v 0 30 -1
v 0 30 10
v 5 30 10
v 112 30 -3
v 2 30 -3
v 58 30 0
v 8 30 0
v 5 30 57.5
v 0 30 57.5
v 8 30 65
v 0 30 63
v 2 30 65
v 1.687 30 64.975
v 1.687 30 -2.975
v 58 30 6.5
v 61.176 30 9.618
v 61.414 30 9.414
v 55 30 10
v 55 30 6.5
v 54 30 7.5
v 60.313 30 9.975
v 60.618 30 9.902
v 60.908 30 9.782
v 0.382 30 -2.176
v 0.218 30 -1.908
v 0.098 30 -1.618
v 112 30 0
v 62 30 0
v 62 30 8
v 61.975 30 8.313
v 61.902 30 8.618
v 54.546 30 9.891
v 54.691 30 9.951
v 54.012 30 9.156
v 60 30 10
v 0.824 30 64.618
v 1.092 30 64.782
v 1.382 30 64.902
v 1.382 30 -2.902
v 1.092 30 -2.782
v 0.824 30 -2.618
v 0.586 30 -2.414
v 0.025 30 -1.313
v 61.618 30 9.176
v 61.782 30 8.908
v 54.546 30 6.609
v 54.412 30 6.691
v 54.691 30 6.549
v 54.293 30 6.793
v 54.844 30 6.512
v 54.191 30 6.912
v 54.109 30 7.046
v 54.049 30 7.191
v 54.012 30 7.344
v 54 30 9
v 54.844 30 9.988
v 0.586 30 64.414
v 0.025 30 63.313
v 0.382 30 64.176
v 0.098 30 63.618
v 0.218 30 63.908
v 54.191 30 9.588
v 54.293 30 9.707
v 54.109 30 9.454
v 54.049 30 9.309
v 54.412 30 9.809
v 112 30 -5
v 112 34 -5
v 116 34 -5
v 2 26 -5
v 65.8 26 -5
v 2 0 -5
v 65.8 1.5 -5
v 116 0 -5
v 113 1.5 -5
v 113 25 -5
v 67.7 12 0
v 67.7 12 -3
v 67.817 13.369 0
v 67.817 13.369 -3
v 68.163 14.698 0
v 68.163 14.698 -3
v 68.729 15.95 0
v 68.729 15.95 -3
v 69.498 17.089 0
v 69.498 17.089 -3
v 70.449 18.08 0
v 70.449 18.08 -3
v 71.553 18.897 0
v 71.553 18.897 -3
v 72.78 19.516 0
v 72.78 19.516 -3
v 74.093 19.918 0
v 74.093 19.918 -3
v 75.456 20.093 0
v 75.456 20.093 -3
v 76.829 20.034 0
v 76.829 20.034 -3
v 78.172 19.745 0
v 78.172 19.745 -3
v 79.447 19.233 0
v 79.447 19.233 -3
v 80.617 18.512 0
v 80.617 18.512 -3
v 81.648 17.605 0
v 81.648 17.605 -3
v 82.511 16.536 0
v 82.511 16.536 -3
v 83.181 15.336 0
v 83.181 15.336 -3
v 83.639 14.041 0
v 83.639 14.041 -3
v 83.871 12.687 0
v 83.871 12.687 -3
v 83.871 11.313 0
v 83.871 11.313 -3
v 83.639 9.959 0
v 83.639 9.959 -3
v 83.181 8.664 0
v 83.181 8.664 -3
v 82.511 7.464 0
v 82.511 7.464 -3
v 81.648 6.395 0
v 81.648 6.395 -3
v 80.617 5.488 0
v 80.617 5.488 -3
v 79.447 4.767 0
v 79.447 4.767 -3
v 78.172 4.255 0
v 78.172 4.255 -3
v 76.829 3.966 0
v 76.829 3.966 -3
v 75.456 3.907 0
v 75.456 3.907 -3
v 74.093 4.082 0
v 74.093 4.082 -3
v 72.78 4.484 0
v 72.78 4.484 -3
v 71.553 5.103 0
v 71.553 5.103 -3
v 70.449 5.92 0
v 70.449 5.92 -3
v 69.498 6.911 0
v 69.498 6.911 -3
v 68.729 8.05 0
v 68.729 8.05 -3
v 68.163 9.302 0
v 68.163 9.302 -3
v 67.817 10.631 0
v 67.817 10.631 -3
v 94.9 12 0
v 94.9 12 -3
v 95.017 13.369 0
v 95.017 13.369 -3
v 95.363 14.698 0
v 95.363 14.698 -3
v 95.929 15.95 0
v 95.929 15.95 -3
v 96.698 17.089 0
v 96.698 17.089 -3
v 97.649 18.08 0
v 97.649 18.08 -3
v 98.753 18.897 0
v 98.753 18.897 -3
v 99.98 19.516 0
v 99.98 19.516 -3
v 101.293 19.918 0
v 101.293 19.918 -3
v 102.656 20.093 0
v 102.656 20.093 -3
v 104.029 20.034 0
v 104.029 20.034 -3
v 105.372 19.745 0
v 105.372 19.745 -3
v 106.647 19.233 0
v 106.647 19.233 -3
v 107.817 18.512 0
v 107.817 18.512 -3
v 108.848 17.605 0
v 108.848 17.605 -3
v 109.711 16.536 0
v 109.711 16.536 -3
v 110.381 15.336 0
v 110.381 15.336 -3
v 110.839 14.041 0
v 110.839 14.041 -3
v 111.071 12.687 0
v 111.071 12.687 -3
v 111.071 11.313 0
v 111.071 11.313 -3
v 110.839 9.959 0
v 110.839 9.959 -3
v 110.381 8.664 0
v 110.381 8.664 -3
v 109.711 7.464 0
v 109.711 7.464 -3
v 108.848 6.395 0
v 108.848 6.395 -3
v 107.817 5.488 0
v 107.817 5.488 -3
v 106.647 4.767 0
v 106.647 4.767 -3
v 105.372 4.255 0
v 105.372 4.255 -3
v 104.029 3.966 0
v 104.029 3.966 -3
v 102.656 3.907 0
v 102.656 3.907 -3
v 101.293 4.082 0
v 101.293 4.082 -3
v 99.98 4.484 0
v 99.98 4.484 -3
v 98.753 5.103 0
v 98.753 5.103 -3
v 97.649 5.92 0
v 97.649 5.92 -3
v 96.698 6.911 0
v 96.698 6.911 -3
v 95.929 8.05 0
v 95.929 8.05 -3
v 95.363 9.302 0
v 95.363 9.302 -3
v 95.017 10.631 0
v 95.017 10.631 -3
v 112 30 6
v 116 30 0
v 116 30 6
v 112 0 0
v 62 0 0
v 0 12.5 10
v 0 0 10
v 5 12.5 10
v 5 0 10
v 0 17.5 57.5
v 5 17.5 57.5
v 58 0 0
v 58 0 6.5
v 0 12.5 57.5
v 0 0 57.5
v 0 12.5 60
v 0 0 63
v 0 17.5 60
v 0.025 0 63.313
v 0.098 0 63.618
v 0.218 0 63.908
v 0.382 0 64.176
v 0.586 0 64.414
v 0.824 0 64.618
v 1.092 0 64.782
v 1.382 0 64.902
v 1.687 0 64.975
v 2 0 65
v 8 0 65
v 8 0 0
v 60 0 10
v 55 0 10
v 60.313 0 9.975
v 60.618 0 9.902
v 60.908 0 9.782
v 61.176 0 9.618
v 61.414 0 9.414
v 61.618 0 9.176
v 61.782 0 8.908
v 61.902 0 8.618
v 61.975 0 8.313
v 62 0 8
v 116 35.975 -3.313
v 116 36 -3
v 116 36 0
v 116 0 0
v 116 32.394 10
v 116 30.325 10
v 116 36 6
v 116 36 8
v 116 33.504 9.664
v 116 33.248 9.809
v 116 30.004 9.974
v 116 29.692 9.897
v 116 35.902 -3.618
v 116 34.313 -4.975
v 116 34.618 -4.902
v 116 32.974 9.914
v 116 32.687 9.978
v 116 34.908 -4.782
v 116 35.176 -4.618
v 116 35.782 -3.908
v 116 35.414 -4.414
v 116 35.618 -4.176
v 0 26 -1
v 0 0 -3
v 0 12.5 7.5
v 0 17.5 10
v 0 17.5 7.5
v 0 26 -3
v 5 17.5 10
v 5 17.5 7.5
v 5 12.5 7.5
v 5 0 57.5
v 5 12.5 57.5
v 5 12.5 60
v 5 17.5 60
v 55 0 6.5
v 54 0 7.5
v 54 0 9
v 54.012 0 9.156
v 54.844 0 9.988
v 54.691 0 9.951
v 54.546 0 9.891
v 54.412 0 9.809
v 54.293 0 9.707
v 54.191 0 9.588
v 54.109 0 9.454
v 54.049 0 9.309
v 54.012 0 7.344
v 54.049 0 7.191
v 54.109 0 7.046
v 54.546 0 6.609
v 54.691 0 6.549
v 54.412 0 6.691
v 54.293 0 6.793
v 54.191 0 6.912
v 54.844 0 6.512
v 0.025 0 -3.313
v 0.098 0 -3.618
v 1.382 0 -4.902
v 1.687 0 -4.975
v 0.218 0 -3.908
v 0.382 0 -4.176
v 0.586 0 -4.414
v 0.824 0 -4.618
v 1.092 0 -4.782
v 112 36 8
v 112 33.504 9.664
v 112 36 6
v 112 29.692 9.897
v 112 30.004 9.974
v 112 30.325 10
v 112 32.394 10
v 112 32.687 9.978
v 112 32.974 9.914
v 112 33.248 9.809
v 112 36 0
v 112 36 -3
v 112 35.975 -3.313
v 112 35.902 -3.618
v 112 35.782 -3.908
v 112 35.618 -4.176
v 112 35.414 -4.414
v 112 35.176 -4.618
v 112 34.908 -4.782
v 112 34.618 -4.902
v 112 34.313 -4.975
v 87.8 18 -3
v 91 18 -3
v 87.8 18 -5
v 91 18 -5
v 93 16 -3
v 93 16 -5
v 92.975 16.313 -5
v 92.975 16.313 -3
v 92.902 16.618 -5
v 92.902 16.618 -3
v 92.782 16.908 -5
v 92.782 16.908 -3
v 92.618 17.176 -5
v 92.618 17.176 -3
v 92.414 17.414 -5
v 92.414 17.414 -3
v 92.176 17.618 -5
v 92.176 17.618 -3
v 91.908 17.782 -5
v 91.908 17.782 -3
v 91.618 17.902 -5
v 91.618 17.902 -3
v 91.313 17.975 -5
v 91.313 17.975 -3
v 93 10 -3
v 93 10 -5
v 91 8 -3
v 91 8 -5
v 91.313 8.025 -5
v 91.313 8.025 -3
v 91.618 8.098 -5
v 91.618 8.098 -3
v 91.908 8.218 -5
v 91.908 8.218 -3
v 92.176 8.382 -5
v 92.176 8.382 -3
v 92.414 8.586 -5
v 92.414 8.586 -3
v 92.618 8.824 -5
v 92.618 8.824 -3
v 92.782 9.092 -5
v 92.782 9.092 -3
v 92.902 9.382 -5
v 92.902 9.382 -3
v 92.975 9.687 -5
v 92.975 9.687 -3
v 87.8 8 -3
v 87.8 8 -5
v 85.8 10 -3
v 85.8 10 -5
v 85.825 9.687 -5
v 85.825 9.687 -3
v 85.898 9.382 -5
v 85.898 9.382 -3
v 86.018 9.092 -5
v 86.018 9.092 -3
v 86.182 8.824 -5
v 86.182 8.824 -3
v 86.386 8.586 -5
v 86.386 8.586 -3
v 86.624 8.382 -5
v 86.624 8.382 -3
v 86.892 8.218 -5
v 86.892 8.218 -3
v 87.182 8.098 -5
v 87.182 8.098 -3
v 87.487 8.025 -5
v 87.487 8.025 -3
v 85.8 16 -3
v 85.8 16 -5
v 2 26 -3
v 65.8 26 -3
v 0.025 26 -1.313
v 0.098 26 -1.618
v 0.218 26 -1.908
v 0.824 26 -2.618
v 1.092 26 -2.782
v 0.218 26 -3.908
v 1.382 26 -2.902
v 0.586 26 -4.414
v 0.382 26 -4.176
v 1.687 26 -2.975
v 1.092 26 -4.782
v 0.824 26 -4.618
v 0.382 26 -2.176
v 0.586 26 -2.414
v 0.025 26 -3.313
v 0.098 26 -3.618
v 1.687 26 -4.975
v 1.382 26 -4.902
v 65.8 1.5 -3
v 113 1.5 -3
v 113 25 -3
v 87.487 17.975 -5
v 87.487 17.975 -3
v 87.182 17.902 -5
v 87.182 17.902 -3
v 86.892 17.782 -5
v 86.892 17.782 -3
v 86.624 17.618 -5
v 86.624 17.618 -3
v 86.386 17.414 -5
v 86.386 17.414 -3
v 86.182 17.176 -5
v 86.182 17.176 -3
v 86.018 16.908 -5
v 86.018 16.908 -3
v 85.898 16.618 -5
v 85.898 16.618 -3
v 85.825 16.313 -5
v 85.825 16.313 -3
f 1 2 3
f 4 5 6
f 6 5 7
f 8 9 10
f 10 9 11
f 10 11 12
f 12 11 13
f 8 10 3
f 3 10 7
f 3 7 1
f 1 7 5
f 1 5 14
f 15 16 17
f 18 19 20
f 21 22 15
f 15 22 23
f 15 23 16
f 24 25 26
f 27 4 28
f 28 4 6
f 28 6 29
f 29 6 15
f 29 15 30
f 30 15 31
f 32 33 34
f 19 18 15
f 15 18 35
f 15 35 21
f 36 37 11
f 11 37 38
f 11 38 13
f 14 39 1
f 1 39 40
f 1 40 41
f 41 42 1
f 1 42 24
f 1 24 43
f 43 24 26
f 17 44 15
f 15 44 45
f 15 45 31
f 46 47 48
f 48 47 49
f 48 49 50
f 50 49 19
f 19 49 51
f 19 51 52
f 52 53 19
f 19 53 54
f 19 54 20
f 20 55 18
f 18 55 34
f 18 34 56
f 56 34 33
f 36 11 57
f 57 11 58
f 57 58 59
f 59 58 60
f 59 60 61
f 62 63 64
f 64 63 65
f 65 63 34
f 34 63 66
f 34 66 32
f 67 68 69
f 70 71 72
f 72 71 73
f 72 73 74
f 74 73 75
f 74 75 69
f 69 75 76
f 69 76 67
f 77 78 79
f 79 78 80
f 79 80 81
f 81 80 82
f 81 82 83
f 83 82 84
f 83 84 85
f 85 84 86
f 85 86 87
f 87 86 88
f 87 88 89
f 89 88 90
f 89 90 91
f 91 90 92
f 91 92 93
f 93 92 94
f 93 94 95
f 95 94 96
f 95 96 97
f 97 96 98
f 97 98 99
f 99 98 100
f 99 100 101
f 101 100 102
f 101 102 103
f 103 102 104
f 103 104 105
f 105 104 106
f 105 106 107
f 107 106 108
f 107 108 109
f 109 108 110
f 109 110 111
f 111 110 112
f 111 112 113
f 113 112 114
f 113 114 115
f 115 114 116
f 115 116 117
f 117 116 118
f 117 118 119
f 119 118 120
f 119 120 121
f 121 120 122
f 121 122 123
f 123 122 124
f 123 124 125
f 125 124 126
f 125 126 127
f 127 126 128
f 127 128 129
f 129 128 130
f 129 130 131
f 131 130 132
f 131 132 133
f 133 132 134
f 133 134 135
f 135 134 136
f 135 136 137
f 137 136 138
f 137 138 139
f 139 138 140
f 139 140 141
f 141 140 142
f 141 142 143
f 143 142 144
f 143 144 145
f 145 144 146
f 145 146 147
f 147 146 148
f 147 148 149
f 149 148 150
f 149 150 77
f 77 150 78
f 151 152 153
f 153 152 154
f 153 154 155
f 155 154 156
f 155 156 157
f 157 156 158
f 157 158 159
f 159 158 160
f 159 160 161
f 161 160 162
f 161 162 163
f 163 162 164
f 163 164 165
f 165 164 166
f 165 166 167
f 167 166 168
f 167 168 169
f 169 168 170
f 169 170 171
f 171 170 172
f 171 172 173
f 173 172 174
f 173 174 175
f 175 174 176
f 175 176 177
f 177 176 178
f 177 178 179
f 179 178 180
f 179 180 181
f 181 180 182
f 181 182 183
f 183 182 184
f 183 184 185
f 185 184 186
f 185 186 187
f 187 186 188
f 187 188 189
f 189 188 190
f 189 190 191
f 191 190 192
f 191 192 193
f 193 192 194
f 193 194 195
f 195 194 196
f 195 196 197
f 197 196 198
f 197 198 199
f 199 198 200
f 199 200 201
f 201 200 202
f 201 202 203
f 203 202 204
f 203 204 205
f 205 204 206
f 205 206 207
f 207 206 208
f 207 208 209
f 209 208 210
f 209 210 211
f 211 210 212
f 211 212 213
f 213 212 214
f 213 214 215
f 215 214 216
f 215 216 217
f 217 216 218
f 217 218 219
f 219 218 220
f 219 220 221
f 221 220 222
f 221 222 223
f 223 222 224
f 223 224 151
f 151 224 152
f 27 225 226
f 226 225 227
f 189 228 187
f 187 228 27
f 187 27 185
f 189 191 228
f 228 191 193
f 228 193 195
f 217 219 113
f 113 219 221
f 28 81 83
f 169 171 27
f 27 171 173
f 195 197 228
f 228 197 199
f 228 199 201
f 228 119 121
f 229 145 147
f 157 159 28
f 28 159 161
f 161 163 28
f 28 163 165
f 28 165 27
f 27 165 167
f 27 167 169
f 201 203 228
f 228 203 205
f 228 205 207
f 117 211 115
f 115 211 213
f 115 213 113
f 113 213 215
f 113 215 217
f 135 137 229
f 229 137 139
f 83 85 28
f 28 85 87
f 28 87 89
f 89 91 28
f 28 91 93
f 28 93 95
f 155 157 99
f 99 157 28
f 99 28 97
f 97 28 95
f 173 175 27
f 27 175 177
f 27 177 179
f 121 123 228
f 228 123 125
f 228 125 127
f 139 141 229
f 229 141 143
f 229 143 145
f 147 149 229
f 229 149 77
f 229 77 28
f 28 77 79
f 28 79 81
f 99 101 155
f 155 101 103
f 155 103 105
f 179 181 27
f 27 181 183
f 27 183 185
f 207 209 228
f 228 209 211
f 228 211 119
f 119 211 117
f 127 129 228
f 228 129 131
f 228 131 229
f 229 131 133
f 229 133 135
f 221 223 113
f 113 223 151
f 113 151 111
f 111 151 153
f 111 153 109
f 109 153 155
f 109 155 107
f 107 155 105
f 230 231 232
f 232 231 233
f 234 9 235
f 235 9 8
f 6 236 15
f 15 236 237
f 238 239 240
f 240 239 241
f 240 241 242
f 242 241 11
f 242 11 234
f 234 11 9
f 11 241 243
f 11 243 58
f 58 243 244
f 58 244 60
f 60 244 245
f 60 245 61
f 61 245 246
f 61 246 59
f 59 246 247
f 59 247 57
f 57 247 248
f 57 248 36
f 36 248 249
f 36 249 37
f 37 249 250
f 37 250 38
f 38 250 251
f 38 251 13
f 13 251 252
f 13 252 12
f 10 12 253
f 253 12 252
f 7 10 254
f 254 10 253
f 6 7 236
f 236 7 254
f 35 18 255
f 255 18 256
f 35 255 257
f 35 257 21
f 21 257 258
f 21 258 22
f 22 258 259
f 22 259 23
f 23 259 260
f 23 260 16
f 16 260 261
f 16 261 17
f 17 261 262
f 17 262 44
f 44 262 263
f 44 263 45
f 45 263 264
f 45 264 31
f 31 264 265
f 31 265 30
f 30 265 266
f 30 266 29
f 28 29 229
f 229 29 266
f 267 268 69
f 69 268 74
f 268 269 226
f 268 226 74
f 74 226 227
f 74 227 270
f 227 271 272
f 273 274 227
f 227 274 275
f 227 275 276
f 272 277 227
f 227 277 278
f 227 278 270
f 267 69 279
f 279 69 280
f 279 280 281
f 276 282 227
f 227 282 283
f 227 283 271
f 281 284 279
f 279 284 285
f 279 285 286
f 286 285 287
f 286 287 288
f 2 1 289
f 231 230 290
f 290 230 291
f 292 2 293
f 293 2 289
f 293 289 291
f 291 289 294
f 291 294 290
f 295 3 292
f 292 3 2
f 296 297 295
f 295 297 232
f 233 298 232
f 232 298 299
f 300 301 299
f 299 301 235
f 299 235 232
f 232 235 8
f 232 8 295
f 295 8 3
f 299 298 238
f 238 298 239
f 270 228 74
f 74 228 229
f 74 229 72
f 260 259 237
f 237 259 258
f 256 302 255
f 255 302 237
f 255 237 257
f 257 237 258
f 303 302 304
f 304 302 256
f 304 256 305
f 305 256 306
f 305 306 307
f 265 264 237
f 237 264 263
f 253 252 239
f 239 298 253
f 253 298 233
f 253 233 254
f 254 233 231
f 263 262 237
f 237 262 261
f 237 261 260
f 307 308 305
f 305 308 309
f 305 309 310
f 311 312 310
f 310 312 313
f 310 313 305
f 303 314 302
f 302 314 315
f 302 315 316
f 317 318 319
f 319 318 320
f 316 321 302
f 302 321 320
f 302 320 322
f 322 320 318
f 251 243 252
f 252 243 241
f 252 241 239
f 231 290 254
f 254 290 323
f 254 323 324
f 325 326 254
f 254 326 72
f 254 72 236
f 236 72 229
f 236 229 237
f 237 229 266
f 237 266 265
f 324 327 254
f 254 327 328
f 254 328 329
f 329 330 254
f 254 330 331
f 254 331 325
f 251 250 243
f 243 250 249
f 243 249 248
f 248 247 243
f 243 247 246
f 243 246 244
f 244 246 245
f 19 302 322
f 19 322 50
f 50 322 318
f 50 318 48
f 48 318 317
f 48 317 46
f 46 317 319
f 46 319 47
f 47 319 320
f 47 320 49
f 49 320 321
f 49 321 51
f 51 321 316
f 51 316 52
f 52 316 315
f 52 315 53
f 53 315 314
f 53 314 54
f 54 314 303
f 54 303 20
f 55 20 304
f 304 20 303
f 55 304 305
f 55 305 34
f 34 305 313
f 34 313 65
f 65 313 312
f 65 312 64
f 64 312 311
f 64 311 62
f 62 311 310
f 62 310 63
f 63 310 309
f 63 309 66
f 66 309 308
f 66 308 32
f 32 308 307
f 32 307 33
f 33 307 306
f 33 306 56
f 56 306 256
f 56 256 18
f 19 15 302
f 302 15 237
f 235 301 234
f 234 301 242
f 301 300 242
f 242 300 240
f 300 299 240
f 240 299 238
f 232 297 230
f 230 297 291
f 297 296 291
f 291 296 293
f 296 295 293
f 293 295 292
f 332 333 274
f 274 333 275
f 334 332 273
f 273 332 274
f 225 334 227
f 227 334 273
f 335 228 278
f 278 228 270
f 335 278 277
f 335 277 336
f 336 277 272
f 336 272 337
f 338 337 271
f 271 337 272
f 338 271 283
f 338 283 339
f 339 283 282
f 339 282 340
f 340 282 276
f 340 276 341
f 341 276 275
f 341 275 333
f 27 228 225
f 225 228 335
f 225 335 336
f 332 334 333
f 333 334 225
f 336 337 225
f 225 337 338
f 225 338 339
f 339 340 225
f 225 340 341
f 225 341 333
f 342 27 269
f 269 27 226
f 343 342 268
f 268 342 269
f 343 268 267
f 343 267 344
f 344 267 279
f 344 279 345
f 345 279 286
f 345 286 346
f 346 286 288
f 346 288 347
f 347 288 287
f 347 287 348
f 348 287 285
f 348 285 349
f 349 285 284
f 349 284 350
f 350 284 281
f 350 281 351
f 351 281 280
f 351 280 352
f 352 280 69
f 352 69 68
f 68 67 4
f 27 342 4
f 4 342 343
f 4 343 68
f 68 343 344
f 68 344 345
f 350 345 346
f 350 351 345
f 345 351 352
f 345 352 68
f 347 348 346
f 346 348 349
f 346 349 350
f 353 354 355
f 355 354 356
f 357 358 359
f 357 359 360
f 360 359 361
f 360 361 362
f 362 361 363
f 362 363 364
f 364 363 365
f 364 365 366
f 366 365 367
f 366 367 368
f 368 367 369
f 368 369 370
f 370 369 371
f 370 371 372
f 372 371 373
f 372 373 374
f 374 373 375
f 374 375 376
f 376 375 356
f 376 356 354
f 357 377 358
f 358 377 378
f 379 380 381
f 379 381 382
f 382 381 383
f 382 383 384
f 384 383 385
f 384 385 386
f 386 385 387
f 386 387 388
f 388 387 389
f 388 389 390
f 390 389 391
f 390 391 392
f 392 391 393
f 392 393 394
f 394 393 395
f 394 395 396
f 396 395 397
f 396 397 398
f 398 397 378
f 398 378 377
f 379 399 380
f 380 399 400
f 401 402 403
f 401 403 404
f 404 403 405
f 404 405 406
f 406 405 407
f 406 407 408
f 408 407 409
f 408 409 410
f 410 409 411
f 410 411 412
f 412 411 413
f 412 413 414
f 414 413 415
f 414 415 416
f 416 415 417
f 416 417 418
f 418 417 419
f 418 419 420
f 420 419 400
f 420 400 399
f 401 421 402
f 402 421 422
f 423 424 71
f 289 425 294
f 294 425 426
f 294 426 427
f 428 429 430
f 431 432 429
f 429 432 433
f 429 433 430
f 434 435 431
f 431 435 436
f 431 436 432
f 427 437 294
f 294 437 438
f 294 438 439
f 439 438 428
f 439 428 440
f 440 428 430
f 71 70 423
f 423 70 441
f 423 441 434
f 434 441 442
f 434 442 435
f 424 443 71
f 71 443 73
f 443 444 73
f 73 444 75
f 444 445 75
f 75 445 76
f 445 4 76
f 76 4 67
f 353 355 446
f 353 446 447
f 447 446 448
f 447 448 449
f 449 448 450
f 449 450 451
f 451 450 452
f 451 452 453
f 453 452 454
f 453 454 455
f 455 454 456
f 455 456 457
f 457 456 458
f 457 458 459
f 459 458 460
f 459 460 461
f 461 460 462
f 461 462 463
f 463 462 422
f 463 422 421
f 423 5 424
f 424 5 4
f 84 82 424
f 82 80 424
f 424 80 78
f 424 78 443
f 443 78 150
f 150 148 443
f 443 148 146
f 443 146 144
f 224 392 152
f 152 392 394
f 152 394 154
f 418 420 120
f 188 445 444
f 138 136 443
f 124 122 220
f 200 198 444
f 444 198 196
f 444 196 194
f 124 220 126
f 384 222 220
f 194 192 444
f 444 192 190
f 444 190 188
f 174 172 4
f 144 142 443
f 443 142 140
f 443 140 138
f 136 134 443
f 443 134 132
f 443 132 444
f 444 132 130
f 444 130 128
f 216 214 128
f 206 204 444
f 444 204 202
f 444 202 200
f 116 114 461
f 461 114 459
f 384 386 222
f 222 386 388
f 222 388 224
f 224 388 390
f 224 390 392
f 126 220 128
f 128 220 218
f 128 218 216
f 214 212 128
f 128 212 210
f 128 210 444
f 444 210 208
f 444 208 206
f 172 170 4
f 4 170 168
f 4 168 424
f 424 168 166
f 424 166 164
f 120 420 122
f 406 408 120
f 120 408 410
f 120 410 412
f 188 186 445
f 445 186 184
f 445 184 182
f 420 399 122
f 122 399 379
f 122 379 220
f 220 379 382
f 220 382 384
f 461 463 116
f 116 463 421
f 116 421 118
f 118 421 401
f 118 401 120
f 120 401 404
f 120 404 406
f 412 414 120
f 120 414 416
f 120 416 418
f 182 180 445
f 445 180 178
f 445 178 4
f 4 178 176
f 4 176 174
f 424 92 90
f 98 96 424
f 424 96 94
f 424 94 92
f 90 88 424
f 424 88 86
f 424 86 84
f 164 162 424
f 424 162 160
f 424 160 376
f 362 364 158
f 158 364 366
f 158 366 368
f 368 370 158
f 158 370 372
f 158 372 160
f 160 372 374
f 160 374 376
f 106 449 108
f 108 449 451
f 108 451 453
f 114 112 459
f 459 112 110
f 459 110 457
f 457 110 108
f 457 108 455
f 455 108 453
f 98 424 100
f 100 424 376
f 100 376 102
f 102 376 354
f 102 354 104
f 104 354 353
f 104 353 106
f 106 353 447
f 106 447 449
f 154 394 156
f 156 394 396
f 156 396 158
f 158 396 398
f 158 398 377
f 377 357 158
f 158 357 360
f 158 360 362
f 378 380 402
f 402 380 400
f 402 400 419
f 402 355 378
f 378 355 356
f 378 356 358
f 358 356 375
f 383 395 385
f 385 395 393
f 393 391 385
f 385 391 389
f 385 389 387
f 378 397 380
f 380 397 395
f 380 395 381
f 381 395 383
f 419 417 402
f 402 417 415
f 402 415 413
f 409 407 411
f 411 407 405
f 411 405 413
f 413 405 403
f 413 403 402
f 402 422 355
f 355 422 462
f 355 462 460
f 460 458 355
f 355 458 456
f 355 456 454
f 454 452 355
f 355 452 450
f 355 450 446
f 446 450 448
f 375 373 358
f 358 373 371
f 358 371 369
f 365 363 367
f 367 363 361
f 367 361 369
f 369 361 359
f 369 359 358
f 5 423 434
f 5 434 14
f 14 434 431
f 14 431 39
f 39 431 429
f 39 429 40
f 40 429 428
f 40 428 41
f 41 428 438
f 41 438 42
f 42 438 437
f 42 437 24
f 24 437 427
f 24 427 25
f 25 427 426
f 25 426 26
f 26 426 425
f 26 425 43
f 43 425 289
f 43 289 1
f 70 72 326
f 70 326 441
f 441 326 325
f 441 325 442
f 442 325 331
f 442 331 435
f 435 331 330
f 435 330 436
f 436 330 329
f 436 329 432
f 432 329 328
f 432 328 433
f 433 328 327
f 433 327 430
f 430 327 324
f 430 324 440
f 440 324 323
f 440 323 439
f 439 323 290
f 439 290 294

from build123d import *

# Parameters (mm, degrees)
BOSS_EXTRUDE1_DEPTH = 30
SKETCH2_W           = 2.5
SKETCH2_H           = 5
CUT_EXTRUDE1_DEPTH  = 5
SKETCH3_R           = 8.1
CUT_EXTRUDE2_DEPTH  = 71
BOSS_EXTRUDE5_DEPTH = 4
CUT_EXTRUDE3_DEPTH  = 2
FILLET1_R           = 2


with BuildPart() as part:
    # Sketch1 → Boss-Extrude1 (new body)
    with BuildSketch(Plane(origin=(0, 0, 0), x_dir=(1, 0, 0), z_dir=(0, 1, 0))):
        with BuildLine():
            Line((8, -65), (8, 0))
            Line((8, 0), (58, 0))
            Line((58, 0), (58, -6.5))
            Line((58, -6.5), (55, -6.5))
            ThreePointArc((55, -6.5), (54.292893219, -6.792893219), (54, -7.5))
            Line((54, -7.5), (54, -9))
            ThreePointArc((54, -9), (54.292893219, -9.707106781), (55, -10))
            Line((55, -10), (60, -10))
            ThreePointArc((60, -10), (61.414213562, -9.414213562), (62, -8))
            Line((62, -8), (62, 0))
            Line((62, 0), (116, 0))
            Line((116, 0), (116, 5))
            Line((116, 5), (0, 5))
            Line((0, 5), (0, -10))
            Line((0, -10), (5, -10))
            Line((5, -10), (5, -57.5))
            Line((5, -57.5), (0, -57.5))
            Line((0, -57.5), (0, -63))
            ThreePointArc((0, -63), (0.585786438, -64.414213562), (2, -65))
            Line((2, -65), (8, -65))
        make_face()
    extrude(amount=BOSS_EXTRUDE1_DEPTH)

    # Sketch2 → Cut-Extrude1 (cut)
    with BuildSketch(Plane.ZY):
        with Locations((8.75, 15)):
            Rectangle(SKETCH2_W, SKETCH2_H)
        with Locations((58.75, 15)):
            Rectangle(SKETCH2_W, SKETCH2_H)
    extrude(amount=-CUT_EXTRUDE1_DEPTH, mode=Mode.SUBTRACT)

    # Sketch3 → Cut-Extrude2 (cut, through all)
    with BuildSketch(Plane(origin=(0, 0, -5), x_dir=(-1, 0, 0), z_dir=(0, 0, -1))):
        with Locations((-103, 12)):
            Circle(SKETCH3_R)
        with Locations((-75.8, 12)):
            Circle(SKETCH3_R)
    extrude(amount=-CUT_EXTRUDE2_DEPTH, mode=Mode.SUBTRACT)

    # Sketch8 → Boss-Extrude5 (add)
    with BuildSketch(Plane(origin=(116, 0, 0), x_dir=(0, 0, -1), z_dir=(1, 0, 0))):
        with BuildLine():
            Line((-8, 36), (-9.664100589, 33.503849117))
            ThreePointArc((-9.664100589, 33.503849117), (-9.914184053, 32.974017022), (-10, 32.394448725))
            Line((-10, 32.394448725), (-10, 30.32455532))
            ThreePointArc((-10, 30.32455532), (-9.974174915, 30.004190834), (-9.897366596, 29.692099788))
            Line((-9.897366596, 29.692099788), (0, 0))
            Line((0, 0), (0, 30))
            Line((0, 30), (-6, 30))
            Line((-6, 30), (-6, 36))
            Line((-6, 36), (-8, 36))
        make_face()
        with BuildLine():
            Line((5, 30), (5, 34))
            ThreePointArc((5, 34), (4.414213562, 35.414213562), (3, 36))
            Line((3, 36), (0, 36))
            Line((0, 36), (0, 30))
            Line((0, 30), (5, 30))
        make_face()
    extrude(amount=-BOSS_EXTRUDE5_DEPTH)

    # Sketch10 → Cut-Extrude3 (cut)
    with BuildSketch(Plane(origin=(0, 0, -5), x_dir=(-1, 0, 0), z_dir=(0, 0, -1))):
        Polygon((-112, 30), (-113, 25), (-113, 1.5), (-65.8, 1.5), (-65.8, 26), (0, 26), (0, 30), align=None)
        with BuildLine():
            ThreePointArc((-93, 16), (-92.414213562, 17.414213562), (-91, 18))
            Line((-91, 18), (-87.8, 18))
            ThreePointArc((-87.8, 18), (-86.385786438, 17.414213562), (-85.8, 16))
            Line((-85.8, 16), (-85.8, 10))
            ThreePointArc((-85.8, 10), (-86.385786438, 8.585786438), (-87.8, 8))
            Line((-87.8, 8), (-91, 8))
            ThreePointArc((-91, 8), (-92.414213562, 8.585786438), (-93, 10))
            Line((-93, 10), (-93, 16))
        make_face(mode=Mode.SUBTRACT)
    extrude(amount=-CUT_EXTRUDE3_DEPTH, mode=Mode.SUBTRACT)

    # Fillet1
    fillet1_edges = [part.edges().sort_by_distance(p)[0] for p in [
        (0, 13, -5),
        (0, 28, -3),
    ]]
    fillet(fillet1_edges, radius=FILLET1_R)


solid = part.part
